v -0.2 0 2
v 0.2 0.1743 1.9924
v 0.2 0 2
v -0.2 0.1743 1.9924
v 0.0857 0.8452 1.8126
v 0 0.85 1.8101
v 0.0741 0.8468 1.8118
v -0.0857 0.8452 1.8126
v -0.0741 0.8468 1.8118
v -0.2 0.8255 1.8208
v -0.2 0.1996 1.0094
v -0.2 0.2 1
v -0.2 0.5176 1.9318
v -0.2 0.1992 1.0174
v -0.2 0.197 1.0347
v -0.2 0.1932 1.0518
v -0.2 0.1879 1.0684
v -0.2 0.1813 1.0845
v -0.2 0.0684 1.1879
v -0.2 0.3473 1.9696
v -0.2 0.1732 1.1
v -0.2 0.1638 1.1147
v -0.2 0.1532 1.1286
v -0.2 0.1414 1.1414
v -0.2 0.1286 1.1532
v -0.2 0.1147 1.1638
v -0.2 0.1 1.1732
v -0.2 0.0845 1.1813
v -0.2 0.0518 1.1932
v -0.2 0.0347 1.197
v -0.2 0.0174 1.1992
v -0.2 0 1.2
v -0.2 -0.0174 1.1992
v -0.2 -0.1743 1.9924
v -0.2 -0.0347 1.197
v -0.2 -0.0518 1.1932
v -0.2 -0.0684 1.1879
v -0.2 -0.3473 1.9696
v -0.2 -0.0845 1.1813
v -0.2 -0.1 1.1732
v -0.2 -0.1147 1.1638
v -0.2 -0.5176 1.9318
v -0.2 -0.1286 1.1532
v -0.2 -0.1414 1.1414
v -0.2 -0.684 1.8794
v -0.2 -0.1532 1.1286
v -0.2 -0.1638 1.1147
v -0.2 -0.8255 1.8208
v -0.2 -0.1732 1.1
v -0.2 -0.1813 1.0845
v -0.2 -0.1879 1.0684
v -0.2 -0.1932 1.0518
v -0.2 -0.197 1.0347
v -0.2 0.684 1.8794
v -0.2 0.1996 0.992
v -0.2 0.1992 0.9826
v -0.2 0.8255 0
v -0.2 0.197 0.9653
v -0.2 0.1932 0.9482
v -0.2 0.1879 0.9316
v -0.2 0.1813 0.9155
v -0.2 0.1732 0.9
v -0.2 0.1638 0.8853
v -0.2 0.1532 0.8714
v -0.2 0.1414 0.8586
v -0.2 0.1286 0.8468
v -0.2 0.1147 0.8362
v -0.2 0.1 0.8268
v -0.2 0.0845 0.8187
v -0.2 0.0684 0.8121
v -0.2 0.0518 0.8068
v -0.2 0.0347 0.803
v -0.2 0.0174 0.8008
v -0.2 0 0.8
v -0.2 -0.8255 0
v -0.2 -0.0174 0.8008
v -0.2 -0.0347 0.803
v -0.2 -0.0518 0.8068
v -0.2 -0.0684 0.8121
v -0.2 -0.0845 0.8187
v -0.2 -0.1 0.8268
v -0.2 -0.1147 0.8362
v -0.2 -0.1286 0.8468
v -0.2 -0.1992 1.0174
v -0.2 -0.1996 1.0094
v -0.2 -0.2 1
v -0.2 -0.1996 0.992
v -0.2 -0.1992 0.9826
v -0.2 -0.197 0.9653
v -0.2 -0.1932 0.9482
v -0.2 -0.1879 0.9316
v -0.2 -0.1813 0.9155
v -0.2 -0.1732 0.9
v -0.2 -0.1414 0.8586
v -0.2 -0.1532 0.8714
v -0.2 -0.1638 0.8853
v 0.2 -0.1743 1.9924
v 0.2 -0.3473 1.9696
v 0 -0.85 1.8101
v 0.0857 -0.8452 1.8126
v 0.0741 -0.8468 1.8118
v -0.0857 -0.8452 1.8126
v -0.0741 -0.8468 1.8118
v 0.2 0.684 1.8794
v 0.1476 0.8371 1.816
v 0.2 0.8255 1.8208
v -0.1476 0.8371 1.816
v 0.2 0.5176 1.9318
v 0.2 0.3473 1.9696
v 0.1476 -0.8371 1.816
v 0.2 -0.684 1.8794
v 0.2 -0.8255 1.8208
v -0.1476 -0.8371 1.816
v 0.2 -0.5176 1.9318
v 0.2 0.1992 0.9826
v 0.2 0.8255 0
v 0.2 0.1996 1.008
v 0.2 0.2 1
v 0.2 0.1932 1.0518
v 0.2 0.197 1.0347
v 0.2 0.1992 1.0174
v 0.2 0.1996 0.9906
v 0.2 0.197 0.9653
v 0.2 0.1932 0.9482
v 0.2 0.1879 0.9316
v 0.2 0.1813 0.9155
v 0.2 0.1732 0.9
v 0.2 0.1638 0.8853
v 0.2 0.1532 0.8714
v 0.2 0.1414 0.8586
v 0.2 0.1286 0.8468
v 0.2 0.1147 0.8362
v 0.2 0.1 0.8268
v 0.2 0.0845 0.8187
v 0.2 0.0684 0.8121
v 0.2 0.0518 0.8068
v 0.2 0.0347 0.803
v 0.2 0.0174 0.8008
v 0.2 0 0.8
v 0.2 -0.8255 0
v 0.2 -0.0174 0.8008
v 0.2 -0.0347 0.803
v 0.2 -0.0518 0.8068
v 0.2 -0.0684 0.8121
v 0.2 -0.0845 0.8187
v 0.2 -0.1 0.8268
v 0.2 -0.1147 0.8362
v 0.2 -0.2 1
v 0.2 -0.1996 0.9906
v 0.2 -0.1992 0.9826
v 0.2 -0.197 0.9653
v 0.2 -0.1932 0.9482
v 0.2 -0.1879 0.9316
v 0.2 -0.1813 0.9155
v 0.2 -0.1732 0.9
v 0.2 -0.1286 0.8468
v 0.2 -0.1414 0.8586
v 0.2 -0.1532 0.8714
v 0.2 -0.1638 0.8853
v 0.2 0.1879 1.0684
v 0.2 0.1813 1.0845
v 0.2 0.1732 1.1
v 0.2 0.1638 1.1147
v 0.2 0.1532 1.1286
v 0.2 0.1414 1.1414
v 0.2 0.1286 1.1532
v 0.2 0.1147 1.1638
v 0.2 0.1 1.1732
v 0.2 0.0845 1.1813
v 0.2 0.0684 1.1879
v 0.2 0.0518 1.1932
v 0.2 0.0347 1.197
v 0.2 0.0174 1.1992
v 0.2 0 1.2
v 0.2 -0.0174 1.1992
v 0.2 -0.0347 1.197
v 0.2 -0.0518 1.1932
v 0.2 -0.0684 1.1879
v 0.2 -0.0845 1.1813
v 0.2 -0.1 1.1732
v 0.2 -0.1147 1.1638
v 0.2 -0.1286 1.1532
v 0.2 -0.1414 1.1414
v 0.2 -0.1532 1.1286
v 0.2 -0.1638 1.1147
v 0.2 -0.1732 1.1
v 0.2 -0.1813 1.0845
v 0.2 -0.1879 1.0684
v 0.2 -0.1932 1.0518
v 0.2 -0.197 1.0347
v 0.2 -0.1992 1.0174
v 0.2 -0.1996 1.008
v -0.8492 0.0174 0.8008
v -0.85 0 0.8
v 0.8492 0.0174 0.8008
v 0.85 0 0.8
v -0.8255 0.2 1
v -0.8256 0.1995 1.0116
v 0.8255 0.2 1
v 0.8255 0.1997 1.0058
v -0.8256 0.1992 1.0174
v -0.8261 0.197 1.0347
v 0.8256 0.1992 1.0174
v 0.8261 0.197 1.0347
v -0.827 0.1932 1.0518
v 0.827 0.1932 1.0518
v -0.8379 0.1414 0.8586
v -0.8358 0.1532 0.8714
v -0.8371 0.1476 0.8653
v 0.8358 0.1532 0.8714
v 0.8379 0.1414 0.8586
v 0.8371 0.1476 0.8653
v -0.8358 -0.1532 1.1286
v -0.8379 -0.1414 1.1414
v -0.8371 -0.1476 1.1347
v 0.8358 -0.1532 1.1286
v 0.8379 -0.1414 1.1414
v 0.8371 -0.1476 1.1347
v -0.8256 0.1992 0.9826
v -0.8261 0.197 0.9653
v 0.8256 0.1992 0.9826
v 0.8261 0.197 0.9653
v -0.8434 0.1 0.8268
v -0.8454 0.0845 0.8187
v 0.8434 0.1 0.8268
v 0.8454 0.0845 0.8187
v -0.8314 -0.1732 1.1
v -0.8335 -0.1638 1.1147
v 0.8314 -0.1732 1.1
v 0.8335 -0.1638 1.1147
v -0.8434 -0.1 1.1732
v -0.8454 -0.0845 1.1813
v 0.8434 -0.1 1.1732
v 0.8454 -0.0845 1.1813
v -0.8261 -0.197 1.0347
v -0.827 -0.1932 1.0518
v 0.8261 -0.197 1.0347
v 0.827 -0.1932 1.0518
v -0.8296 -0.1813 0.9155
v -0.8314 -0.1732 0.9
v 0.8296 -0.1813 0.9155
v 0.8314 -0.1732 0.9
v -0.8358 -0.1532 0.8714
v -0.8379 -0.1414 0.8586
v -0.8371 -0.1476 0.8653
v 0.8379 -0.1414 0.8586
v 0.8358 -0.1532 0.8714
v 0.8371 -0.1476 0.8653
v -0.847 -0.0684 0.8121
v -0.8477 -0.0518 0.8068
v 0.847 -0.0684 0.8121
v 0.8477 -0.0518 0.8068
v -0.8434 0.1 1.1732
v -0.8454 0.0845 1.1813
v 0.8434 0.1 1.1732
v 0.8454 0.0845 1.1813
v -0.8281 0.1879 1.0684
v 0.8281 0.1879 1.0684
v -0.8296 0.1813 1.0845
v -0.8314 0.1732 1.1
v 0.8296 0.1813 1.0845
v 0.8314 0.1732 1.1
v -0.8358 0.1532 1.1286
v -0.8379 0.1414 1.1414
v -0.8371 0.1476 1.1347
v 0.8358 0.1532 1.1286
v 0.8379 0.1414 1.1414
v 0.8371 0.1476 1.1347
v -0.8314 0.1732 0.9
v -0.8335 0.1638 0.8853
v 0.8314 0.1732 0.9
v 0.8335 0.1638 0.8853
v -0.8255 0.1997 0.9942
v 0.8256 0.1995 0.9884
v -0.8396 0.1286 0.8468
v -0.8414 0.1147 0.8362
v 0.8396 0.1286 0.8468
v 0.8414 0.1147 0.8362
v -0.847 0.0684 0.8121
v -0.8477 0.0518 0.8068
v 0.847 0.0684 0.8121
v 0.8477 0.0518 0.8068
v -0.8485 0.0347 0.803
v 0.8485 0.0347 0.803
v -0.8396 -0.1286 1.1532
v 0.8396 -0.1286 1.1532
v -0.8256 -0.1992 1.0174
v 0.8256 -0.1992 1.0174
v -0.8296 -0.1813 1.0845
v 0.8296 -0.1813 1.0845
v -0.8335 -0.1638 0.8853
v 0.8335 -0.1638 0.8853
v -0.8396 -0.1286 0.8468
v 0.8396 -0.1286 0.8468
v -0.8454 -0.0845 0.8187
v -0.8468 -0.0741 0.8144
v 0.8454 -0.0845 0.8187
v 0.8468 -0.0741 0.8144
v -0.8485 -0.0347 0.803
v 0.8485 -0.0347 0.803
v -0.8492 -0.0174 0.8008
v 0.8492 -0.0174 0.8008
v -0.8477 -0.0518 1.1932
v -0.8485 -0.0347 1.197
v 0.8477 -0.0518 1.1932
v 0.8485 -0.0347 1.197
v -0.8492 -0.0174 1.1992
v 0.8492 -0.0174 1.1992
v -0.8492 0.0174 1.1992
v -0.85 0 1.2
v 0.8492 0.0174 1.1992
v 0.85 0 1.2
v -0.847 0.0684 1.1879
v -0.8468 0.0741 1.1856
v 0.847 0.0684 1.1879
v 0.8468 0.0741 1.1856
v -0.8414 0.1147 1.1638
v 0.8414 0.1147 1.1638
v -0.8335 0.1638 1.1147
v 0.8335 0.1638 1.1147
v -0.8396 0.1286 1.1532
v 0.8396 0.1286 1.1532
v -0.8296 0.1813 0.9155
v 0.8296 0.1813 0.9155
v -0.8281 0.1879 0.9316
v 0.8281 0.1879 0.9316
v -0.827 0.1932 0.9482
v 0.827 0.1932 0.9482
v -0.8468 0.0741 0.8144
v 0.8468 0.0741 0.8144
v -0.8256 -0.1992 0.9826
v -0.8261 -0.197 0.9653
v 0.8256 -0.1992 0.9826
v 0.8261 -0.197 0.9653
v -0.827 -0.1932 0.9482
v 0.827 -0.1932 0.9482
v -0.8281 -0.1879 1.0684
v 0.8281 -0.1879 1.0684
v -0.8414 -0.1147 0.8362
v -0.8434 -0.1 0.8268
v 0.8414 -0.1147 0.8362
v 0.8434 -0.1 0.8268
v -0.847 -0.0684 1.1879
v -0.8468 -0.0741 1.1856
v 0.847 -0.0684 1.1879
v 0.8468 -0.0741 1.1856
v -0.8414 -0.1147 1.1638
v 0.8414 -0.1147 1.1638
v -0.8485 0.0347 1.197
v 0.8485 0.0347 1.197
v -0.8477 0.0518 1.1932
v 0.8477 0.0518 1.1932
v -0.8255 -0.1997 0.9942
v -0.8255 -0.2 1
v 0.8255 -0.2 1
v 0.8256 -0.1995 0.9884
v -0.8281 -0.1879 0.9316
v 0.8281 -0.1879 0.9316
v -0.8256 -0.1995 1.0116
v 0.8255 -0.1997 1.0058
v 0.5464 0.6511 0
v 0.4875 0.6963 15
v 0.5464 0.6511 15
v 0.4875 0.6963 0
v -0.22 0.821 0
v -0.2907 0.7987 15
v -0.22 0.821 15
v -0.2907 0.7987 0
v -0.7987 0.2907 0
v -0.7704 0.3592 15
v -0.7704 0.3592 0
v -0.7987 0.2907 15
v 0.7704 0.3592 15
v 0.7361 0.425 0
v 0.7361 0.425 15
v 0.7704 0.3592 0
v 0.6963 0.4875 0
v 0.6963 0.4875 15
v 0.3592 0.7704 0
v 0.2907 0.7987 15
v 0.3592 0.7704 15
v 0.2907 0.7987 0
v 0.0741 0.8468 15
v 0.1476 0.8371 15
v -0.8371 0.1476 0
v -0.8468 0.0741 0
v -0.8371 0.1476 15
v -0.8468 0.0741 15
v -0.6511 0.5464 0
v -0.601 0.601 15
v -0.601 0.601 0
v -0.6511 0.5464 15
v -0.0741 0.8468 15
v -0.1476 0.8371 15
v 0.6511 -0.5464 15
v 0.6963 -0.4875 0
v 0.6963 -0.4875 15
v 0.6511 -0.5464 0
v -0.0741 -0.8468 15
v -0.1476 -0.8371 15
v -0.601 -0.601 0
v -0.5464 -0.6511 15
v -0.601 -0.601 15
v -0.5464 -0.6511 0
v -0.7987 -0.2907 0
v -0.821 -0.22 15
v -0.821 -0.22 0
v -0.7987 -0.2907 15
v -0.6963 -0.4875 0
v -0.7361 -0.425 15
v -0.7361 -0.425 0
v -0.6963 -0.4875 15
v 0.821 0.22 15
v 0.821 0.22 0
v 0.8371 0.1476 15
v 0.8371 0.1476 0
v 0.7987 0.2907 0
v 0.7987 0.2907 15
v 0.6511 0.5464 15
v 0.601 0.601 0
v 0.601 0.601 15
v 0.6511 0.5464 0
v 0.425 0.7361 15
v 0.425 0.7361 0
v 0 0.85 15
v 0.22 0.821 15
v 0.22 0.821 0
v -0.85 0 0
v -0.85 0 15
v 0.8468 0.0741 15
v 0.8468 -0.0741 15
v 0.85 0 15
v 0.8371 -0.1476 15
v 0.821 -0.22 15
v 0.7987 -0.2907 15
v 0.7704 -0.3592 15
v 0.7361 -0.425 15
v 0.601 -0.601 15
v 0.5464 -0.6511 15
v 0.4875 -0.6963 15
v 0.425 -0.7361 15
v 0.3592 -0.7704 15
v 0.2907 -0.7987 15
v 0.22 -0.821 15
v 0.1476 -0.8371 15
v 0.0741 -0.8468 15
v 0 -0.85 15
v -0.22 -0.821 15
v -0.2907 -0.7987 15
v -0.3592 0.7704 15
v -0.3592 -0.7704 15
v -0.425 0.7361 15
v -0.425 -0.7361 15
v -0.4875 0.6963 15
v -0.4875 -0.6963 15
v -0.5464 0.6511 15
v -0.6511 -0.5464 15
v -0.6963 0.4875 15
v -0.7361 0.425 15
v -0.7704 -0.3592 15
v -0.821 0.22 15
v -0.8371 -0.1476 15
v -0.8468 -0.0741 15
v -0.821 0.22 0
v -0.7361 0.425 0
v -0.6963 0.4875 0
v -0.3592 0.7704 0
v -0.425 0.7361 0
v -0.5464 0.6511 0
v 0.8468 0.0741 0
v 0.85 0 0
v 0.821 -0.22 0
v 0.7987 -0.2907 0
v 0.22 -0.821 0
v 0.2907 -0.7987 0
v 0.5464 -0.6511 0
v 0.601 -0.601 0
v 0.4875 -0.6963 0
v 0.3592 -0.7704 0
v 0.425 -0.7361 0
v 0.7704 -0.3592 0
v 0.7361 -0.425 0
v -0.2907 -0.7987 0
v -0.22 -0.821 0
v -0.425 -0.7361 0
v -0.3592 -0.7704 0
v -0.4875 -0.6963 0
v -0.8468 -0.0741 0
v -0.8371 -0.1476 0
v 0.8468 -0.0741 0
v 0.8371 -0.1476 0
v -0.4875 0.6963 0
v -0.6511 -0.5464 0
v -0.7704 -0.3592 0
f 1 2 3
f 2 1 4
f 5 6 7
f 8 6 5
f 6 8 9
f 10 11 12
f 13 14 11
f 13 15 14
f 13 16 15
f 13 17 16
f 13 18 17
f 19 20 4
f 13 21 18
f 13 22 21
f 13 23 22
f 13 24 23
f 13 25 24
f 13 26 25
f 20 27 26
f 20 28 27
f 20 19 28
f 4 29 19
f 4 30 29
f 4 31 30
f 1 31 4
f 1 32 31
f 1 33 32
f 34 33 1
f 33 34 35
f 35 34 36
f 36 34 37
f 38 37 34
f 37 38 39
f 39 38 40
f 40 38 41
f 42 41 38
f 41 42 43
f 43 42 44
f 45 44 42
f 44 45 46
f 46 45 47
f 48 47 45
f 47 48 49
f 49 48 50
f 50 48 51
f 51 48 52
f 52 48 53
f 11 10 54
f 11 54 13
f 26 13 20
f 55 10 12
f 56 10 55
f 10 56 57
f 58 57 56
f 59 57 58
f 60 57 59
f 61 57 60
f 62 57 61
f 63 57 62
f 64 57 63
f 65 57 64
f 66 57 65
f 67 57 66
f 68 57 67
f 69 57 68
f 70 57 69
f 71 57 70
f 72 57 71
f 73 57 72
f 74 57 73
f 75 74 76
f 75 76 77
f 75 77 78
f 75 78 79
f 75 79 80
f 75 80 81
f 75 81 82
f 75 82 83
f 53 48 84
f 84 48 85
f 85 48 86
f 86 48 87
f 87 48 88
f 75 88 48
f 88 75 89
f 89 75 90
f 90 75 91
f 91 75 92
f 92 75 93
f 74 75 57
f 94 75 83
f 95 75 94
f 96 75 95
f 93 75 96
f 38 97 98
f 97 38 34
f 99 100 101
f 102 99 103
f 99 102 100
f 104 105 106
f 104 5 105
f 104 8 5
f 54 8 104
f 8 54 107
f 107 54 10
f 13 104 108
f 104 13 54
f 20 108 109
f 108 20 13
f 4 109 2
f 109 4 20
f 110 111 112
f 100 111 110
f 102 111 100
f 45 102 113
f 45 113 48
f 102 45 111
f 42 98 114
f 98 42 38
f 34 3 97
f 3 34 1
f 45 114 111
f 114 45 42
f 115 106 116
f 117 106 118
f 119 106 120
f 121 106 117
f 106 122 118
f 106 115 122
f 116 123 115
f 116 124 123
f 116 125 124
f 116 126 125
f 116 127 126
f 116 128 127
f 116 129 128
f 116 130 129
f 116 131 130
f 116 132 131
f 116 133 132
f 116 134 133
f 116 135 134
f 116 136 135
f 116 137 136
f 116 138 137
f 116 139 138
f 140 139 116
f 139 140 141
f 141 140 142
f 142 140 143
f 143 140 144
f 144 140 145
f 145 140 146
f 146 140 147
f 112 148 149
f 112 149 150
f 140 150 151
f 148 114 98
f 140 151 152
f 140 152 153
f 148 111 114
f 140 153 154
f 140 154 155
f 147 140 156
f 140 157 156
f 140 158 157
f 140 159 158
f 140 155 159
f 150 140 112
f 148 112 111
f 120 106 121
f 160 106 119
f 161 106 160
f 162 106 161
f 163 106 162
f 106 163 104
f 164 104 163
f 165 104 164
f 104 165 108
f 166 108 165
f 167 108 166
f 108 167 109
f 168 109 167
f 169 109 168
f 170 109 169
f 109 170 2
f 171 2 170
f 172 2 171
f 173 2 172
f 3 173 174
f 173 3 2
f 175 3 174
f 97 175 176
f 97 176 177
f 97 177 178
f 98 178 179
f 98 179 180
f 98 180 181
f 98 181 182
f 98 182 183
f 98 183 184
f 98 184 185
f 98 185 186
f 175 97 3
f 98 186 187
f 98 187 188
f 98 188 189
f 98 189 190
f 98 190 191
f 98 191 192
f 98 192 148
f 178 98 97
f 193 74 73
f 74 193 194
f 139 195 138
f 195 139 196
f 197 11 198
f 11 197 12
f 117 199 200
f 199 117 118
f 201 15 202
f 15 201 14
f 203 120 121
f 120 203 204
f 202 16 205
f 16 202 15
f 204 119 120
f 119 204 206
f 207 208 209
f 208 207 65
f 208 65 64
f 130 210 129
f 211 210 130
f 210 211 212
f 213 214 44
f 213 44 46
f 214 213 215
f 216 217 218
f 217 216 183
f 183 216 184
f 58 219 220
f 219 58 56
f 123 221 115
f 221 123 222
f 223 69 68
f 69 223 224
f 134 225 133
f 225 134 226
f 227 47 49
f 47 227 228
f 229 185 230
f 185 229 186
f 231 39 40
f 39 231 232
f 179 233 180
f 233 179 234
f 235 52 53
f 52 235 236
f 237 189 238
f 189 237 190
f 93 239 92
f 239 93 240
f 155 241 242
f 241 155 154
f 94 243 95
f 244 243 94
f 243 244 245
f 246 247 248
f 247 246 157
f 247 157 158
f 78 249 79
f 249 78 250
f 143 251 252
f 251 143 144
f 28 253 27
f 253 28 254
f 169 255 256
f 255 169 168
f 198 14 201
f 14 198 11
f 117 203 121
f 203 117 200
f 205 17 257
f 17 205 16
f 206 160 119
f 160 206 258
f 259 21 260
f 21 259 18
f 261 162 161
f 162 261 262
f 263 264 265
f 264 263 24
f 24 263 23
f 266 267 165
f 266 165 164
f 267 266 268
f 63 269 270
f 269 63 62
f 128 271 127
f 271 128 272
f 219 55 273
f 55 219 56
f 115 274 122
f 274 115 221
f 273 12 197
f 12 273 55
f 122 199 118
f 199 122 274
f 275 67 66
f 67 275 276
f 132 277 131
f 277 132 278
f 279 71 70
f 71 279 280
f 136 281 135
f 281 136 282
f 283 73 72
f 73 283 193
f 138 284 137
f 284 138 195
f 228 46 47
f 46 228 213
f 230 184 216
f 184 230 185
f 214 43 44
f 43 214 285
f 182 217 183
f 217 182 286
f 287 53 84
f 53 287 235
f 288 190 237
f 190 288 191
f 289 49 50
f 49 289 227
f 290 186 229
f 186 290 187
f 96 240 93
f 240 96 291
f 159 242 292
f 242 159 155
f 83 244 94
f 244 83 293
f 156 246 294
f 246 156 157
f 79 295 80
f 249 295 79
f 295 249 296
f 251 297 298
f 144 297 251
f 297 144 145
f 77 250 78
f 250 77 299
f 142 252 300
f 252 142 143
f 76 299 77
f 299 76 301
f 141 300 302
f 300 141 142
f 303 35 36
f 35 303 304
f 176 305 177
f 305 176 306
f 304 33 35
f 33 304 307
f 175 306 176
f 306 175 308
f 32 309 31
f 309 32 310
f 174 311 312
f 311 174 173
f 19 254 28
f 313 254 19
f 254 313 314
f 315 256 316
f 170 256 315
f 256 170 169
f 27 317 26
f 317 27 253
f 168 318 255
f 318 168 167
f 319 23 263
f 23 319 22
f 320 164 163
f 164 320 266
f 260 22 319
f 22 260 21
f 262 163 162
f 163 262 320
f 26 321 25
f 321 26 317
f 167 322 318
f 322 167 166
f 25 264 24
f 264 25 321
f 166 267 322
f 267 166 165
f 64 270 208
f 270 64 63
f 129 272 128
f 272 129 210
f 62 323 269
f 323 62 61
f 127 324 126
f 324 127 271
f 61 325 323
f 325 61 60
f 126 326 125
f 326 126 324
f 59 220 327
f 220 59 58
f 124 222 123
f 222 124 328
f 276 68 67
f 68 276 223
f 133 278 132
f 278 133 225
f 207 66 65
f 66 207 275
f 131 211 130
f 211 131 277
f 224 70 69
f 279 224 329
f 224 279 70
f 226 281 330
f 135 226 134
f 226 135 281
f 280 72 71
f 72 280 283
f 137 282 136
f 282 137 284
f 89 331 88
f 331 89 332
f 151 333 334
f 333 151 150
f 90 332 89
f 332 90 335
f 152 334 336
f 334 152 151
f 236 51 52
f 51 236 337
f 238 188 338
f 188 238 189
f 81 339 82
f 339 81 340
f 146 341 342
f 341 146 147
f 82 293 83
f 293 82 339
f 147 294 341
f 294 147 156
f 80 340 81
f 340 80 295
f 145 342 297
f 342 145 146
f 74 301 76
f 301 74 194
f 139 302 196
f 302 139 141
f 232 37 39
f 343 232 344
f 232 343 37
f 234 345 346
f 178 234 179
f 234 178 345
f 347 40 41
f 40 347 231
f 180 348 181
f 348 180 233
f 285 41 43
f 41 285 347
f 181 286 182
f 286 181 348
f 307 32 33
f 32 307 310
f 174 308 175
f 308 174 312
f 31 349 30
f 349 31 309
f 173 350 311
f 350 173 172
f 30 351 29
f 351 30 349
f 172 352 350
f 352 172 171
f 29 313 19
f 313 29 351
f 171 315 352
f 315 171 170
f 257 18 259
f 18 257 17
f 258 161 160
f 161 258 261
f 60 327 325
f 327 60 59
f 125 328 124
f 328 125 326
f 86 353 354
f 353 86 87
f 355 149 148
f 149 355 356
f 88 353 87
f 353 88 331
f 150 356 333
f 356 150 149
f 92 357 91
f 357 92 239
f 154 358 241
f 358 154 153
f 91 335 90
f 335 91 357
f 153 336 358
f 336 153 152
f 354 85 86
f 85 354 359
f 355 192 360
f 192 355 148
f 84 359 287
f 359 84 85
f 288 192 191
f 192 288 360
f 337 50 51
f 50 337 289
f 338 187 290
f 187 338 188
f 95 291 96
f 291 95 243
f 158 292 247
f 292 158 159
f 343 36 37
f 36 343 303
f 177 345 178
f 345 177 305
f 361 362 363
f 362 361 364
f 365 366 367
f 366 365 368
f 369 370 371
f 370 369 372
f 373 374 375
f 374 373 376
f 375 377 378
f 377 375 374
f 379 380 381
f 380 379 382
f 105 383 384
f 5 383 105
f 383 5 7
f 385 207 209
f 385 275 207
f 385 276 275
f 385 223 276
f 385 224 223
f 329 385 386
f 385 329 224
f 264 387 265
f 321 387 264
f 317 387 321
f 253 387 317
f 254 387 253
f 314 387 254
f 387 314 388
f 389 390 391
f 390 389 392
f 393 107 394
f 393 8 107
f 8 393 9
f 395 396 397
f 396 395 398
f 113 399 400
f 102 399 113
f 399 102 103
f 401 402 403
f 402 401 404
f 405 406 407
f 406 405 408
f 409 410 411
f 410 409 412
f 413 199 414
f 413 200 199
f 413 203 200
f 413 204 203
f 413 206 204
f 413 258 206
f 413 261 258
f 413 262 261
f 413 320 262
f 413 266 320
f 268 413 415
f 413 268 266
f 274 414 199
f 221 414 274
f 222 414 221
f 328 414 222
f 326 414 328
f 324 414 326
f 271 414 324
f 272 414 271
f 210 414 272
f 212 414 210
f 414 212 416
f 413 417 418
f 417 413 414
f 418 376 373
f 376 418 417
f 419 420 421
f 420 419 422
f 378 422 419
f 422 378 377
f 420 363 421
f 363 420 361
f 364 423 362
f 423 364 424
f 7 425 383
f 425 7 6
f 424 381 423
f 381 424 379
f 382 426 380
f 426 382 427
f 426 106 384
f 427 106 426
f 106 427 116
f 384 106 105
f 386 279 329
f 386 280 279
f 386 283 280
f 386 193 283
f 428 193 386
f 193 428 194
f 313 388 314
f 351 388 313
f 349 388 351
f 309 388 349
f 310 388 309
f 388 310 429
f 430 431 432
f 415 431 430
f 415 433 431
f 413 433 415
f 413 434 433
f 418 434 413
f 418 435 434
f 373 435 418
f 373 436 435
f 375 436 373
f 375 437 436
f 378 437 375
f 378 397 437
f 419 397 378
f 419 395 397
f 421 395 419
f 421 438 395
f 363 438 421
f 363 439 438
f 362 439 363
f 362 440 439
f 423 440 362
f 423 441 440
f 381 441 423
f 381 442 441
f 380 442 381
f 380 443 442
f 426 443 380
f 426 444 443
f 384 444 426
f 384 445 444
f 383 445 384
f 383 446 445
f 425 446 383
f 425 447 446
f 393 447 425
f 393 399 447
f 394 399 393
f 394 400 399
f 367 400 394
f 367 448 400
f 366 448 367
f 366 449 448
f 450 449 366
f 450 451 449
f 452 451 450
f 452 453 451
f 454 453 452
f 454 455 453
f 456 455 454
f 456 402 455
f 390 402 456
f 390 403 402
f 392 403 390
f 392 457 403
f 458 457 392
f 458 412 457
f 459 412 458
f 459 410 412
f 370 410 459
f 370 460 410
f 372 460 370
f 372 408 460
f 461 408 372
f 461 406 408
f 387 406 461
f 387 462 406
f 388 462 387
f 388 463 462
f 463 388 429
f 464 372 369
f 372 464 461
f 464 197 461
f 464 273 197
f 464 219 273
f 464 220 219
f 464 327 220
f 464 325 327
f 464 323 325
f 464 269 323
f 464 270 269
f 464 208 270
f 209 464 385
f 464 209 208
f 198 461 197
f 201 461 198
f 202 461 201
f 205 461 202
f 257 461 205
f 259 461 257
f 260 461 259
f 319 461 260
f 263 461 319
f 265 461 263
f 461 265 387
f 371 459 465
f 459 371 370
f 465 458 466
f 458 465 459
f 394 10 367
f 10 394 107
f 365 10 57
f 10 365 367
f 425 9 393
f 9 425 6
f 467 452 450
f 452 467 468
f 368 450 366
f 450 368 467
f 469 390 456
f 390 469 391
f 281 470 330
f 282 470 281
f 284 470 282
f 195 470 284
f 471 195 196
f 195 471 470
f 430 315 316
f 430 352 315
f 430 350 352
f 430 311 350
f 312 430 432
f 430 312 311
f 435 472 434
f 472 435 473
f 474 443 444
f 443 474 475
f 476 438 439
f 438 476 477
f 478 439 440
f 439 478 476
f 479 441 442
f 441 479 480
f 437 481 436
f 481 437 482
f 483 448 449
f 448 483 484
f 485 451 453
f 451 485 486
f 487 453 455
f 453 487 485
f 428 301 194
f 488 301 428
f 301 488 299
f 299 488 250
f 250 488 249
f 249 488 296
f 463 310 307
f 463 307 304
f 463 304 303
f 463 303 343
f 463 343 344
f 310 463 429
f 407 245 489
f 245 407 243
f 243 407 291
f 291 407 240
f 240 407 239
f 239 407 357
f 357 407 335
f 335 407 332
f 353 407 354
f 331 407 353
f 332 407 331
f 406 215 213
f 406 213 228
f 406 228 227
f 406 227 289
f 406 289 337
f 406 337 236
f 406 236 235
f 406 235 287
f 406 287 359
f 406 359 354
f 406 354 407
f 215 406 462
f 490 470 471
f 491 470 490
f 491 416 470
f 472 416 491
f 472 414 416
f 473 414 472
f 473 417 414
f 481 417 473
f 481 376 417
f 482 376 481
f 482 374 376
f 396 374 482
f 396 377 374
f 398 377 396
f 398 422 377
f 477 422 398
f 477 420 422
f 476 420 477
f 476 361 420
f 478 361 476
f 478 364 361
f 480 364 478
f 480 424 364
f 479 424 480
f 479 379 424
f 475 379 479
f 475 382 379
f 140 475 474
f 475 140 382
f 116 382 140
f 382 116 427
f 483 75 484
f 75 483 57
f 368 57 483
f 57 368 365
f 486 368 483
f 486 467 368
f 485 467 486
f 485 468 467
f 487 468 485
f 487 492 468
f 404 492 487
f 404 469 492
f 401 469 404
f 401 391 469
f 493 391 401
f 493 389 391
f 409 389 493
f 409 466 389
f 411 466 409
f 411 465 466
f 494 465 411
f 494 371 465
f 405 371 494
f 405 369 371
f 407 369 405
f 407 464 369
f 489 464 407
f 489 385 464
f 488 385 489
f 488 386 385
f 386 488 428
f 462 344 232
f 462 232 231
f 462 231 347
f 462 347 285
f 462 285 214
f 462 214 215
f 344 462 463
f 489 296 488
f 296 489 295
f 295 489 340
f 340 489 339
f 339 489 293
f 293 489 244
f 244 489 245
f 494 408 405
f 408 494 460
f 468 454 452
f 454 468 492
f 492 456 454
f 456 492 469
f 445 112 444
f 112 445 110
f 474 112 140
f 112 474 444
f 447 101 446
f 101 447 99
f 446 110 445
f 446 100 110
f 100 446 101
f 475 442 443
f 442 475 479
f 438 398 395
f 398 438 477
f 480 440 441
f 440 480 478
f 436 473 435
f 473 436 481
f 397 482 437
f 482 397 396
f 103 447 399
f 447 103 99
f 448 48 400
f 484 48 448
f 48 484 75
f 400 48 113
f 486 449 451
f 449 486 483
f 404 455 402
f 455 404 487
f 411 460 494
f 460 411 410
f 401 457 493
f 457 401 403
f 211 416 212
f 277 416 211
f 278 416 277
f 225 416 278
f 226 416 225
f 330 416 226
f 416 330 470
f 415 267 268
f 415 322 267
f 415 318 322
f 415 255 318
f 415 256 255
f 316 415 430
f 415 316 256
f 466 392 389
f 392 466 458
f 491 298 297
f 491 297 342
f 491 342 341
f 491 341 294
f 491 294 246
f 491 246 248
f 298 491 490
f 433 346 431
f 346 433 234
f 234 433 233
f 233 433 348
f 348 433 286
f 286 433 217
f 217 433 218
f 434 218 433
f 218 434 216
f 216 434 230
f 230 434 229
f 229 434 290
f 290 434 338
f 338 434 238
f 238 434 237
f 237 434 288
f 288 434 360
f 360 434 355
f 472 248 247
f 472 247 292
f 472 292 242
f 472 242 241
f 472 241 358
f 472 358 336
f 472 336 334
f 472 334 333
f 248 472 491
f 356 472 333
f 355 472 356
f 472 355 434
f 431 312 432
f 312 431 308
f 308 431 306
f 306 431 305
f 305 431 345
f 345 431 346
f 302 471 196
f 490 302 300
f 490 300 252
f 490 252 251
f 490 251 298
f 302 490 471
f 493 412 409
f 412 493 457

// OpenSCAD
diam=.85;

difference() {
    cylinder(h=15,r=diam,$fn=72);
    
    union(){
        rotate([0,90,0]) cylinder(h=0.4, r=2,$fn=72, center=true);
        translate([0,0,1]) rotate([0,90,0]) cylinder(h=5, r=0.2,$fn=72, center=true);
    }
}
/*
translate([0,0,0]) rotate([180,0,0])
difference(){
union() {
    cylinder(h=15,r=diam,$fn=72);
    rotate([0,90,0]) cylinder(h=0.4, r=2,$fn=72, center=true);
}
    translate([0,0,-1]) rotate([0,90,0]) cylinder(h=5, r=0.2,$fn=72, center=true);
}
*/
